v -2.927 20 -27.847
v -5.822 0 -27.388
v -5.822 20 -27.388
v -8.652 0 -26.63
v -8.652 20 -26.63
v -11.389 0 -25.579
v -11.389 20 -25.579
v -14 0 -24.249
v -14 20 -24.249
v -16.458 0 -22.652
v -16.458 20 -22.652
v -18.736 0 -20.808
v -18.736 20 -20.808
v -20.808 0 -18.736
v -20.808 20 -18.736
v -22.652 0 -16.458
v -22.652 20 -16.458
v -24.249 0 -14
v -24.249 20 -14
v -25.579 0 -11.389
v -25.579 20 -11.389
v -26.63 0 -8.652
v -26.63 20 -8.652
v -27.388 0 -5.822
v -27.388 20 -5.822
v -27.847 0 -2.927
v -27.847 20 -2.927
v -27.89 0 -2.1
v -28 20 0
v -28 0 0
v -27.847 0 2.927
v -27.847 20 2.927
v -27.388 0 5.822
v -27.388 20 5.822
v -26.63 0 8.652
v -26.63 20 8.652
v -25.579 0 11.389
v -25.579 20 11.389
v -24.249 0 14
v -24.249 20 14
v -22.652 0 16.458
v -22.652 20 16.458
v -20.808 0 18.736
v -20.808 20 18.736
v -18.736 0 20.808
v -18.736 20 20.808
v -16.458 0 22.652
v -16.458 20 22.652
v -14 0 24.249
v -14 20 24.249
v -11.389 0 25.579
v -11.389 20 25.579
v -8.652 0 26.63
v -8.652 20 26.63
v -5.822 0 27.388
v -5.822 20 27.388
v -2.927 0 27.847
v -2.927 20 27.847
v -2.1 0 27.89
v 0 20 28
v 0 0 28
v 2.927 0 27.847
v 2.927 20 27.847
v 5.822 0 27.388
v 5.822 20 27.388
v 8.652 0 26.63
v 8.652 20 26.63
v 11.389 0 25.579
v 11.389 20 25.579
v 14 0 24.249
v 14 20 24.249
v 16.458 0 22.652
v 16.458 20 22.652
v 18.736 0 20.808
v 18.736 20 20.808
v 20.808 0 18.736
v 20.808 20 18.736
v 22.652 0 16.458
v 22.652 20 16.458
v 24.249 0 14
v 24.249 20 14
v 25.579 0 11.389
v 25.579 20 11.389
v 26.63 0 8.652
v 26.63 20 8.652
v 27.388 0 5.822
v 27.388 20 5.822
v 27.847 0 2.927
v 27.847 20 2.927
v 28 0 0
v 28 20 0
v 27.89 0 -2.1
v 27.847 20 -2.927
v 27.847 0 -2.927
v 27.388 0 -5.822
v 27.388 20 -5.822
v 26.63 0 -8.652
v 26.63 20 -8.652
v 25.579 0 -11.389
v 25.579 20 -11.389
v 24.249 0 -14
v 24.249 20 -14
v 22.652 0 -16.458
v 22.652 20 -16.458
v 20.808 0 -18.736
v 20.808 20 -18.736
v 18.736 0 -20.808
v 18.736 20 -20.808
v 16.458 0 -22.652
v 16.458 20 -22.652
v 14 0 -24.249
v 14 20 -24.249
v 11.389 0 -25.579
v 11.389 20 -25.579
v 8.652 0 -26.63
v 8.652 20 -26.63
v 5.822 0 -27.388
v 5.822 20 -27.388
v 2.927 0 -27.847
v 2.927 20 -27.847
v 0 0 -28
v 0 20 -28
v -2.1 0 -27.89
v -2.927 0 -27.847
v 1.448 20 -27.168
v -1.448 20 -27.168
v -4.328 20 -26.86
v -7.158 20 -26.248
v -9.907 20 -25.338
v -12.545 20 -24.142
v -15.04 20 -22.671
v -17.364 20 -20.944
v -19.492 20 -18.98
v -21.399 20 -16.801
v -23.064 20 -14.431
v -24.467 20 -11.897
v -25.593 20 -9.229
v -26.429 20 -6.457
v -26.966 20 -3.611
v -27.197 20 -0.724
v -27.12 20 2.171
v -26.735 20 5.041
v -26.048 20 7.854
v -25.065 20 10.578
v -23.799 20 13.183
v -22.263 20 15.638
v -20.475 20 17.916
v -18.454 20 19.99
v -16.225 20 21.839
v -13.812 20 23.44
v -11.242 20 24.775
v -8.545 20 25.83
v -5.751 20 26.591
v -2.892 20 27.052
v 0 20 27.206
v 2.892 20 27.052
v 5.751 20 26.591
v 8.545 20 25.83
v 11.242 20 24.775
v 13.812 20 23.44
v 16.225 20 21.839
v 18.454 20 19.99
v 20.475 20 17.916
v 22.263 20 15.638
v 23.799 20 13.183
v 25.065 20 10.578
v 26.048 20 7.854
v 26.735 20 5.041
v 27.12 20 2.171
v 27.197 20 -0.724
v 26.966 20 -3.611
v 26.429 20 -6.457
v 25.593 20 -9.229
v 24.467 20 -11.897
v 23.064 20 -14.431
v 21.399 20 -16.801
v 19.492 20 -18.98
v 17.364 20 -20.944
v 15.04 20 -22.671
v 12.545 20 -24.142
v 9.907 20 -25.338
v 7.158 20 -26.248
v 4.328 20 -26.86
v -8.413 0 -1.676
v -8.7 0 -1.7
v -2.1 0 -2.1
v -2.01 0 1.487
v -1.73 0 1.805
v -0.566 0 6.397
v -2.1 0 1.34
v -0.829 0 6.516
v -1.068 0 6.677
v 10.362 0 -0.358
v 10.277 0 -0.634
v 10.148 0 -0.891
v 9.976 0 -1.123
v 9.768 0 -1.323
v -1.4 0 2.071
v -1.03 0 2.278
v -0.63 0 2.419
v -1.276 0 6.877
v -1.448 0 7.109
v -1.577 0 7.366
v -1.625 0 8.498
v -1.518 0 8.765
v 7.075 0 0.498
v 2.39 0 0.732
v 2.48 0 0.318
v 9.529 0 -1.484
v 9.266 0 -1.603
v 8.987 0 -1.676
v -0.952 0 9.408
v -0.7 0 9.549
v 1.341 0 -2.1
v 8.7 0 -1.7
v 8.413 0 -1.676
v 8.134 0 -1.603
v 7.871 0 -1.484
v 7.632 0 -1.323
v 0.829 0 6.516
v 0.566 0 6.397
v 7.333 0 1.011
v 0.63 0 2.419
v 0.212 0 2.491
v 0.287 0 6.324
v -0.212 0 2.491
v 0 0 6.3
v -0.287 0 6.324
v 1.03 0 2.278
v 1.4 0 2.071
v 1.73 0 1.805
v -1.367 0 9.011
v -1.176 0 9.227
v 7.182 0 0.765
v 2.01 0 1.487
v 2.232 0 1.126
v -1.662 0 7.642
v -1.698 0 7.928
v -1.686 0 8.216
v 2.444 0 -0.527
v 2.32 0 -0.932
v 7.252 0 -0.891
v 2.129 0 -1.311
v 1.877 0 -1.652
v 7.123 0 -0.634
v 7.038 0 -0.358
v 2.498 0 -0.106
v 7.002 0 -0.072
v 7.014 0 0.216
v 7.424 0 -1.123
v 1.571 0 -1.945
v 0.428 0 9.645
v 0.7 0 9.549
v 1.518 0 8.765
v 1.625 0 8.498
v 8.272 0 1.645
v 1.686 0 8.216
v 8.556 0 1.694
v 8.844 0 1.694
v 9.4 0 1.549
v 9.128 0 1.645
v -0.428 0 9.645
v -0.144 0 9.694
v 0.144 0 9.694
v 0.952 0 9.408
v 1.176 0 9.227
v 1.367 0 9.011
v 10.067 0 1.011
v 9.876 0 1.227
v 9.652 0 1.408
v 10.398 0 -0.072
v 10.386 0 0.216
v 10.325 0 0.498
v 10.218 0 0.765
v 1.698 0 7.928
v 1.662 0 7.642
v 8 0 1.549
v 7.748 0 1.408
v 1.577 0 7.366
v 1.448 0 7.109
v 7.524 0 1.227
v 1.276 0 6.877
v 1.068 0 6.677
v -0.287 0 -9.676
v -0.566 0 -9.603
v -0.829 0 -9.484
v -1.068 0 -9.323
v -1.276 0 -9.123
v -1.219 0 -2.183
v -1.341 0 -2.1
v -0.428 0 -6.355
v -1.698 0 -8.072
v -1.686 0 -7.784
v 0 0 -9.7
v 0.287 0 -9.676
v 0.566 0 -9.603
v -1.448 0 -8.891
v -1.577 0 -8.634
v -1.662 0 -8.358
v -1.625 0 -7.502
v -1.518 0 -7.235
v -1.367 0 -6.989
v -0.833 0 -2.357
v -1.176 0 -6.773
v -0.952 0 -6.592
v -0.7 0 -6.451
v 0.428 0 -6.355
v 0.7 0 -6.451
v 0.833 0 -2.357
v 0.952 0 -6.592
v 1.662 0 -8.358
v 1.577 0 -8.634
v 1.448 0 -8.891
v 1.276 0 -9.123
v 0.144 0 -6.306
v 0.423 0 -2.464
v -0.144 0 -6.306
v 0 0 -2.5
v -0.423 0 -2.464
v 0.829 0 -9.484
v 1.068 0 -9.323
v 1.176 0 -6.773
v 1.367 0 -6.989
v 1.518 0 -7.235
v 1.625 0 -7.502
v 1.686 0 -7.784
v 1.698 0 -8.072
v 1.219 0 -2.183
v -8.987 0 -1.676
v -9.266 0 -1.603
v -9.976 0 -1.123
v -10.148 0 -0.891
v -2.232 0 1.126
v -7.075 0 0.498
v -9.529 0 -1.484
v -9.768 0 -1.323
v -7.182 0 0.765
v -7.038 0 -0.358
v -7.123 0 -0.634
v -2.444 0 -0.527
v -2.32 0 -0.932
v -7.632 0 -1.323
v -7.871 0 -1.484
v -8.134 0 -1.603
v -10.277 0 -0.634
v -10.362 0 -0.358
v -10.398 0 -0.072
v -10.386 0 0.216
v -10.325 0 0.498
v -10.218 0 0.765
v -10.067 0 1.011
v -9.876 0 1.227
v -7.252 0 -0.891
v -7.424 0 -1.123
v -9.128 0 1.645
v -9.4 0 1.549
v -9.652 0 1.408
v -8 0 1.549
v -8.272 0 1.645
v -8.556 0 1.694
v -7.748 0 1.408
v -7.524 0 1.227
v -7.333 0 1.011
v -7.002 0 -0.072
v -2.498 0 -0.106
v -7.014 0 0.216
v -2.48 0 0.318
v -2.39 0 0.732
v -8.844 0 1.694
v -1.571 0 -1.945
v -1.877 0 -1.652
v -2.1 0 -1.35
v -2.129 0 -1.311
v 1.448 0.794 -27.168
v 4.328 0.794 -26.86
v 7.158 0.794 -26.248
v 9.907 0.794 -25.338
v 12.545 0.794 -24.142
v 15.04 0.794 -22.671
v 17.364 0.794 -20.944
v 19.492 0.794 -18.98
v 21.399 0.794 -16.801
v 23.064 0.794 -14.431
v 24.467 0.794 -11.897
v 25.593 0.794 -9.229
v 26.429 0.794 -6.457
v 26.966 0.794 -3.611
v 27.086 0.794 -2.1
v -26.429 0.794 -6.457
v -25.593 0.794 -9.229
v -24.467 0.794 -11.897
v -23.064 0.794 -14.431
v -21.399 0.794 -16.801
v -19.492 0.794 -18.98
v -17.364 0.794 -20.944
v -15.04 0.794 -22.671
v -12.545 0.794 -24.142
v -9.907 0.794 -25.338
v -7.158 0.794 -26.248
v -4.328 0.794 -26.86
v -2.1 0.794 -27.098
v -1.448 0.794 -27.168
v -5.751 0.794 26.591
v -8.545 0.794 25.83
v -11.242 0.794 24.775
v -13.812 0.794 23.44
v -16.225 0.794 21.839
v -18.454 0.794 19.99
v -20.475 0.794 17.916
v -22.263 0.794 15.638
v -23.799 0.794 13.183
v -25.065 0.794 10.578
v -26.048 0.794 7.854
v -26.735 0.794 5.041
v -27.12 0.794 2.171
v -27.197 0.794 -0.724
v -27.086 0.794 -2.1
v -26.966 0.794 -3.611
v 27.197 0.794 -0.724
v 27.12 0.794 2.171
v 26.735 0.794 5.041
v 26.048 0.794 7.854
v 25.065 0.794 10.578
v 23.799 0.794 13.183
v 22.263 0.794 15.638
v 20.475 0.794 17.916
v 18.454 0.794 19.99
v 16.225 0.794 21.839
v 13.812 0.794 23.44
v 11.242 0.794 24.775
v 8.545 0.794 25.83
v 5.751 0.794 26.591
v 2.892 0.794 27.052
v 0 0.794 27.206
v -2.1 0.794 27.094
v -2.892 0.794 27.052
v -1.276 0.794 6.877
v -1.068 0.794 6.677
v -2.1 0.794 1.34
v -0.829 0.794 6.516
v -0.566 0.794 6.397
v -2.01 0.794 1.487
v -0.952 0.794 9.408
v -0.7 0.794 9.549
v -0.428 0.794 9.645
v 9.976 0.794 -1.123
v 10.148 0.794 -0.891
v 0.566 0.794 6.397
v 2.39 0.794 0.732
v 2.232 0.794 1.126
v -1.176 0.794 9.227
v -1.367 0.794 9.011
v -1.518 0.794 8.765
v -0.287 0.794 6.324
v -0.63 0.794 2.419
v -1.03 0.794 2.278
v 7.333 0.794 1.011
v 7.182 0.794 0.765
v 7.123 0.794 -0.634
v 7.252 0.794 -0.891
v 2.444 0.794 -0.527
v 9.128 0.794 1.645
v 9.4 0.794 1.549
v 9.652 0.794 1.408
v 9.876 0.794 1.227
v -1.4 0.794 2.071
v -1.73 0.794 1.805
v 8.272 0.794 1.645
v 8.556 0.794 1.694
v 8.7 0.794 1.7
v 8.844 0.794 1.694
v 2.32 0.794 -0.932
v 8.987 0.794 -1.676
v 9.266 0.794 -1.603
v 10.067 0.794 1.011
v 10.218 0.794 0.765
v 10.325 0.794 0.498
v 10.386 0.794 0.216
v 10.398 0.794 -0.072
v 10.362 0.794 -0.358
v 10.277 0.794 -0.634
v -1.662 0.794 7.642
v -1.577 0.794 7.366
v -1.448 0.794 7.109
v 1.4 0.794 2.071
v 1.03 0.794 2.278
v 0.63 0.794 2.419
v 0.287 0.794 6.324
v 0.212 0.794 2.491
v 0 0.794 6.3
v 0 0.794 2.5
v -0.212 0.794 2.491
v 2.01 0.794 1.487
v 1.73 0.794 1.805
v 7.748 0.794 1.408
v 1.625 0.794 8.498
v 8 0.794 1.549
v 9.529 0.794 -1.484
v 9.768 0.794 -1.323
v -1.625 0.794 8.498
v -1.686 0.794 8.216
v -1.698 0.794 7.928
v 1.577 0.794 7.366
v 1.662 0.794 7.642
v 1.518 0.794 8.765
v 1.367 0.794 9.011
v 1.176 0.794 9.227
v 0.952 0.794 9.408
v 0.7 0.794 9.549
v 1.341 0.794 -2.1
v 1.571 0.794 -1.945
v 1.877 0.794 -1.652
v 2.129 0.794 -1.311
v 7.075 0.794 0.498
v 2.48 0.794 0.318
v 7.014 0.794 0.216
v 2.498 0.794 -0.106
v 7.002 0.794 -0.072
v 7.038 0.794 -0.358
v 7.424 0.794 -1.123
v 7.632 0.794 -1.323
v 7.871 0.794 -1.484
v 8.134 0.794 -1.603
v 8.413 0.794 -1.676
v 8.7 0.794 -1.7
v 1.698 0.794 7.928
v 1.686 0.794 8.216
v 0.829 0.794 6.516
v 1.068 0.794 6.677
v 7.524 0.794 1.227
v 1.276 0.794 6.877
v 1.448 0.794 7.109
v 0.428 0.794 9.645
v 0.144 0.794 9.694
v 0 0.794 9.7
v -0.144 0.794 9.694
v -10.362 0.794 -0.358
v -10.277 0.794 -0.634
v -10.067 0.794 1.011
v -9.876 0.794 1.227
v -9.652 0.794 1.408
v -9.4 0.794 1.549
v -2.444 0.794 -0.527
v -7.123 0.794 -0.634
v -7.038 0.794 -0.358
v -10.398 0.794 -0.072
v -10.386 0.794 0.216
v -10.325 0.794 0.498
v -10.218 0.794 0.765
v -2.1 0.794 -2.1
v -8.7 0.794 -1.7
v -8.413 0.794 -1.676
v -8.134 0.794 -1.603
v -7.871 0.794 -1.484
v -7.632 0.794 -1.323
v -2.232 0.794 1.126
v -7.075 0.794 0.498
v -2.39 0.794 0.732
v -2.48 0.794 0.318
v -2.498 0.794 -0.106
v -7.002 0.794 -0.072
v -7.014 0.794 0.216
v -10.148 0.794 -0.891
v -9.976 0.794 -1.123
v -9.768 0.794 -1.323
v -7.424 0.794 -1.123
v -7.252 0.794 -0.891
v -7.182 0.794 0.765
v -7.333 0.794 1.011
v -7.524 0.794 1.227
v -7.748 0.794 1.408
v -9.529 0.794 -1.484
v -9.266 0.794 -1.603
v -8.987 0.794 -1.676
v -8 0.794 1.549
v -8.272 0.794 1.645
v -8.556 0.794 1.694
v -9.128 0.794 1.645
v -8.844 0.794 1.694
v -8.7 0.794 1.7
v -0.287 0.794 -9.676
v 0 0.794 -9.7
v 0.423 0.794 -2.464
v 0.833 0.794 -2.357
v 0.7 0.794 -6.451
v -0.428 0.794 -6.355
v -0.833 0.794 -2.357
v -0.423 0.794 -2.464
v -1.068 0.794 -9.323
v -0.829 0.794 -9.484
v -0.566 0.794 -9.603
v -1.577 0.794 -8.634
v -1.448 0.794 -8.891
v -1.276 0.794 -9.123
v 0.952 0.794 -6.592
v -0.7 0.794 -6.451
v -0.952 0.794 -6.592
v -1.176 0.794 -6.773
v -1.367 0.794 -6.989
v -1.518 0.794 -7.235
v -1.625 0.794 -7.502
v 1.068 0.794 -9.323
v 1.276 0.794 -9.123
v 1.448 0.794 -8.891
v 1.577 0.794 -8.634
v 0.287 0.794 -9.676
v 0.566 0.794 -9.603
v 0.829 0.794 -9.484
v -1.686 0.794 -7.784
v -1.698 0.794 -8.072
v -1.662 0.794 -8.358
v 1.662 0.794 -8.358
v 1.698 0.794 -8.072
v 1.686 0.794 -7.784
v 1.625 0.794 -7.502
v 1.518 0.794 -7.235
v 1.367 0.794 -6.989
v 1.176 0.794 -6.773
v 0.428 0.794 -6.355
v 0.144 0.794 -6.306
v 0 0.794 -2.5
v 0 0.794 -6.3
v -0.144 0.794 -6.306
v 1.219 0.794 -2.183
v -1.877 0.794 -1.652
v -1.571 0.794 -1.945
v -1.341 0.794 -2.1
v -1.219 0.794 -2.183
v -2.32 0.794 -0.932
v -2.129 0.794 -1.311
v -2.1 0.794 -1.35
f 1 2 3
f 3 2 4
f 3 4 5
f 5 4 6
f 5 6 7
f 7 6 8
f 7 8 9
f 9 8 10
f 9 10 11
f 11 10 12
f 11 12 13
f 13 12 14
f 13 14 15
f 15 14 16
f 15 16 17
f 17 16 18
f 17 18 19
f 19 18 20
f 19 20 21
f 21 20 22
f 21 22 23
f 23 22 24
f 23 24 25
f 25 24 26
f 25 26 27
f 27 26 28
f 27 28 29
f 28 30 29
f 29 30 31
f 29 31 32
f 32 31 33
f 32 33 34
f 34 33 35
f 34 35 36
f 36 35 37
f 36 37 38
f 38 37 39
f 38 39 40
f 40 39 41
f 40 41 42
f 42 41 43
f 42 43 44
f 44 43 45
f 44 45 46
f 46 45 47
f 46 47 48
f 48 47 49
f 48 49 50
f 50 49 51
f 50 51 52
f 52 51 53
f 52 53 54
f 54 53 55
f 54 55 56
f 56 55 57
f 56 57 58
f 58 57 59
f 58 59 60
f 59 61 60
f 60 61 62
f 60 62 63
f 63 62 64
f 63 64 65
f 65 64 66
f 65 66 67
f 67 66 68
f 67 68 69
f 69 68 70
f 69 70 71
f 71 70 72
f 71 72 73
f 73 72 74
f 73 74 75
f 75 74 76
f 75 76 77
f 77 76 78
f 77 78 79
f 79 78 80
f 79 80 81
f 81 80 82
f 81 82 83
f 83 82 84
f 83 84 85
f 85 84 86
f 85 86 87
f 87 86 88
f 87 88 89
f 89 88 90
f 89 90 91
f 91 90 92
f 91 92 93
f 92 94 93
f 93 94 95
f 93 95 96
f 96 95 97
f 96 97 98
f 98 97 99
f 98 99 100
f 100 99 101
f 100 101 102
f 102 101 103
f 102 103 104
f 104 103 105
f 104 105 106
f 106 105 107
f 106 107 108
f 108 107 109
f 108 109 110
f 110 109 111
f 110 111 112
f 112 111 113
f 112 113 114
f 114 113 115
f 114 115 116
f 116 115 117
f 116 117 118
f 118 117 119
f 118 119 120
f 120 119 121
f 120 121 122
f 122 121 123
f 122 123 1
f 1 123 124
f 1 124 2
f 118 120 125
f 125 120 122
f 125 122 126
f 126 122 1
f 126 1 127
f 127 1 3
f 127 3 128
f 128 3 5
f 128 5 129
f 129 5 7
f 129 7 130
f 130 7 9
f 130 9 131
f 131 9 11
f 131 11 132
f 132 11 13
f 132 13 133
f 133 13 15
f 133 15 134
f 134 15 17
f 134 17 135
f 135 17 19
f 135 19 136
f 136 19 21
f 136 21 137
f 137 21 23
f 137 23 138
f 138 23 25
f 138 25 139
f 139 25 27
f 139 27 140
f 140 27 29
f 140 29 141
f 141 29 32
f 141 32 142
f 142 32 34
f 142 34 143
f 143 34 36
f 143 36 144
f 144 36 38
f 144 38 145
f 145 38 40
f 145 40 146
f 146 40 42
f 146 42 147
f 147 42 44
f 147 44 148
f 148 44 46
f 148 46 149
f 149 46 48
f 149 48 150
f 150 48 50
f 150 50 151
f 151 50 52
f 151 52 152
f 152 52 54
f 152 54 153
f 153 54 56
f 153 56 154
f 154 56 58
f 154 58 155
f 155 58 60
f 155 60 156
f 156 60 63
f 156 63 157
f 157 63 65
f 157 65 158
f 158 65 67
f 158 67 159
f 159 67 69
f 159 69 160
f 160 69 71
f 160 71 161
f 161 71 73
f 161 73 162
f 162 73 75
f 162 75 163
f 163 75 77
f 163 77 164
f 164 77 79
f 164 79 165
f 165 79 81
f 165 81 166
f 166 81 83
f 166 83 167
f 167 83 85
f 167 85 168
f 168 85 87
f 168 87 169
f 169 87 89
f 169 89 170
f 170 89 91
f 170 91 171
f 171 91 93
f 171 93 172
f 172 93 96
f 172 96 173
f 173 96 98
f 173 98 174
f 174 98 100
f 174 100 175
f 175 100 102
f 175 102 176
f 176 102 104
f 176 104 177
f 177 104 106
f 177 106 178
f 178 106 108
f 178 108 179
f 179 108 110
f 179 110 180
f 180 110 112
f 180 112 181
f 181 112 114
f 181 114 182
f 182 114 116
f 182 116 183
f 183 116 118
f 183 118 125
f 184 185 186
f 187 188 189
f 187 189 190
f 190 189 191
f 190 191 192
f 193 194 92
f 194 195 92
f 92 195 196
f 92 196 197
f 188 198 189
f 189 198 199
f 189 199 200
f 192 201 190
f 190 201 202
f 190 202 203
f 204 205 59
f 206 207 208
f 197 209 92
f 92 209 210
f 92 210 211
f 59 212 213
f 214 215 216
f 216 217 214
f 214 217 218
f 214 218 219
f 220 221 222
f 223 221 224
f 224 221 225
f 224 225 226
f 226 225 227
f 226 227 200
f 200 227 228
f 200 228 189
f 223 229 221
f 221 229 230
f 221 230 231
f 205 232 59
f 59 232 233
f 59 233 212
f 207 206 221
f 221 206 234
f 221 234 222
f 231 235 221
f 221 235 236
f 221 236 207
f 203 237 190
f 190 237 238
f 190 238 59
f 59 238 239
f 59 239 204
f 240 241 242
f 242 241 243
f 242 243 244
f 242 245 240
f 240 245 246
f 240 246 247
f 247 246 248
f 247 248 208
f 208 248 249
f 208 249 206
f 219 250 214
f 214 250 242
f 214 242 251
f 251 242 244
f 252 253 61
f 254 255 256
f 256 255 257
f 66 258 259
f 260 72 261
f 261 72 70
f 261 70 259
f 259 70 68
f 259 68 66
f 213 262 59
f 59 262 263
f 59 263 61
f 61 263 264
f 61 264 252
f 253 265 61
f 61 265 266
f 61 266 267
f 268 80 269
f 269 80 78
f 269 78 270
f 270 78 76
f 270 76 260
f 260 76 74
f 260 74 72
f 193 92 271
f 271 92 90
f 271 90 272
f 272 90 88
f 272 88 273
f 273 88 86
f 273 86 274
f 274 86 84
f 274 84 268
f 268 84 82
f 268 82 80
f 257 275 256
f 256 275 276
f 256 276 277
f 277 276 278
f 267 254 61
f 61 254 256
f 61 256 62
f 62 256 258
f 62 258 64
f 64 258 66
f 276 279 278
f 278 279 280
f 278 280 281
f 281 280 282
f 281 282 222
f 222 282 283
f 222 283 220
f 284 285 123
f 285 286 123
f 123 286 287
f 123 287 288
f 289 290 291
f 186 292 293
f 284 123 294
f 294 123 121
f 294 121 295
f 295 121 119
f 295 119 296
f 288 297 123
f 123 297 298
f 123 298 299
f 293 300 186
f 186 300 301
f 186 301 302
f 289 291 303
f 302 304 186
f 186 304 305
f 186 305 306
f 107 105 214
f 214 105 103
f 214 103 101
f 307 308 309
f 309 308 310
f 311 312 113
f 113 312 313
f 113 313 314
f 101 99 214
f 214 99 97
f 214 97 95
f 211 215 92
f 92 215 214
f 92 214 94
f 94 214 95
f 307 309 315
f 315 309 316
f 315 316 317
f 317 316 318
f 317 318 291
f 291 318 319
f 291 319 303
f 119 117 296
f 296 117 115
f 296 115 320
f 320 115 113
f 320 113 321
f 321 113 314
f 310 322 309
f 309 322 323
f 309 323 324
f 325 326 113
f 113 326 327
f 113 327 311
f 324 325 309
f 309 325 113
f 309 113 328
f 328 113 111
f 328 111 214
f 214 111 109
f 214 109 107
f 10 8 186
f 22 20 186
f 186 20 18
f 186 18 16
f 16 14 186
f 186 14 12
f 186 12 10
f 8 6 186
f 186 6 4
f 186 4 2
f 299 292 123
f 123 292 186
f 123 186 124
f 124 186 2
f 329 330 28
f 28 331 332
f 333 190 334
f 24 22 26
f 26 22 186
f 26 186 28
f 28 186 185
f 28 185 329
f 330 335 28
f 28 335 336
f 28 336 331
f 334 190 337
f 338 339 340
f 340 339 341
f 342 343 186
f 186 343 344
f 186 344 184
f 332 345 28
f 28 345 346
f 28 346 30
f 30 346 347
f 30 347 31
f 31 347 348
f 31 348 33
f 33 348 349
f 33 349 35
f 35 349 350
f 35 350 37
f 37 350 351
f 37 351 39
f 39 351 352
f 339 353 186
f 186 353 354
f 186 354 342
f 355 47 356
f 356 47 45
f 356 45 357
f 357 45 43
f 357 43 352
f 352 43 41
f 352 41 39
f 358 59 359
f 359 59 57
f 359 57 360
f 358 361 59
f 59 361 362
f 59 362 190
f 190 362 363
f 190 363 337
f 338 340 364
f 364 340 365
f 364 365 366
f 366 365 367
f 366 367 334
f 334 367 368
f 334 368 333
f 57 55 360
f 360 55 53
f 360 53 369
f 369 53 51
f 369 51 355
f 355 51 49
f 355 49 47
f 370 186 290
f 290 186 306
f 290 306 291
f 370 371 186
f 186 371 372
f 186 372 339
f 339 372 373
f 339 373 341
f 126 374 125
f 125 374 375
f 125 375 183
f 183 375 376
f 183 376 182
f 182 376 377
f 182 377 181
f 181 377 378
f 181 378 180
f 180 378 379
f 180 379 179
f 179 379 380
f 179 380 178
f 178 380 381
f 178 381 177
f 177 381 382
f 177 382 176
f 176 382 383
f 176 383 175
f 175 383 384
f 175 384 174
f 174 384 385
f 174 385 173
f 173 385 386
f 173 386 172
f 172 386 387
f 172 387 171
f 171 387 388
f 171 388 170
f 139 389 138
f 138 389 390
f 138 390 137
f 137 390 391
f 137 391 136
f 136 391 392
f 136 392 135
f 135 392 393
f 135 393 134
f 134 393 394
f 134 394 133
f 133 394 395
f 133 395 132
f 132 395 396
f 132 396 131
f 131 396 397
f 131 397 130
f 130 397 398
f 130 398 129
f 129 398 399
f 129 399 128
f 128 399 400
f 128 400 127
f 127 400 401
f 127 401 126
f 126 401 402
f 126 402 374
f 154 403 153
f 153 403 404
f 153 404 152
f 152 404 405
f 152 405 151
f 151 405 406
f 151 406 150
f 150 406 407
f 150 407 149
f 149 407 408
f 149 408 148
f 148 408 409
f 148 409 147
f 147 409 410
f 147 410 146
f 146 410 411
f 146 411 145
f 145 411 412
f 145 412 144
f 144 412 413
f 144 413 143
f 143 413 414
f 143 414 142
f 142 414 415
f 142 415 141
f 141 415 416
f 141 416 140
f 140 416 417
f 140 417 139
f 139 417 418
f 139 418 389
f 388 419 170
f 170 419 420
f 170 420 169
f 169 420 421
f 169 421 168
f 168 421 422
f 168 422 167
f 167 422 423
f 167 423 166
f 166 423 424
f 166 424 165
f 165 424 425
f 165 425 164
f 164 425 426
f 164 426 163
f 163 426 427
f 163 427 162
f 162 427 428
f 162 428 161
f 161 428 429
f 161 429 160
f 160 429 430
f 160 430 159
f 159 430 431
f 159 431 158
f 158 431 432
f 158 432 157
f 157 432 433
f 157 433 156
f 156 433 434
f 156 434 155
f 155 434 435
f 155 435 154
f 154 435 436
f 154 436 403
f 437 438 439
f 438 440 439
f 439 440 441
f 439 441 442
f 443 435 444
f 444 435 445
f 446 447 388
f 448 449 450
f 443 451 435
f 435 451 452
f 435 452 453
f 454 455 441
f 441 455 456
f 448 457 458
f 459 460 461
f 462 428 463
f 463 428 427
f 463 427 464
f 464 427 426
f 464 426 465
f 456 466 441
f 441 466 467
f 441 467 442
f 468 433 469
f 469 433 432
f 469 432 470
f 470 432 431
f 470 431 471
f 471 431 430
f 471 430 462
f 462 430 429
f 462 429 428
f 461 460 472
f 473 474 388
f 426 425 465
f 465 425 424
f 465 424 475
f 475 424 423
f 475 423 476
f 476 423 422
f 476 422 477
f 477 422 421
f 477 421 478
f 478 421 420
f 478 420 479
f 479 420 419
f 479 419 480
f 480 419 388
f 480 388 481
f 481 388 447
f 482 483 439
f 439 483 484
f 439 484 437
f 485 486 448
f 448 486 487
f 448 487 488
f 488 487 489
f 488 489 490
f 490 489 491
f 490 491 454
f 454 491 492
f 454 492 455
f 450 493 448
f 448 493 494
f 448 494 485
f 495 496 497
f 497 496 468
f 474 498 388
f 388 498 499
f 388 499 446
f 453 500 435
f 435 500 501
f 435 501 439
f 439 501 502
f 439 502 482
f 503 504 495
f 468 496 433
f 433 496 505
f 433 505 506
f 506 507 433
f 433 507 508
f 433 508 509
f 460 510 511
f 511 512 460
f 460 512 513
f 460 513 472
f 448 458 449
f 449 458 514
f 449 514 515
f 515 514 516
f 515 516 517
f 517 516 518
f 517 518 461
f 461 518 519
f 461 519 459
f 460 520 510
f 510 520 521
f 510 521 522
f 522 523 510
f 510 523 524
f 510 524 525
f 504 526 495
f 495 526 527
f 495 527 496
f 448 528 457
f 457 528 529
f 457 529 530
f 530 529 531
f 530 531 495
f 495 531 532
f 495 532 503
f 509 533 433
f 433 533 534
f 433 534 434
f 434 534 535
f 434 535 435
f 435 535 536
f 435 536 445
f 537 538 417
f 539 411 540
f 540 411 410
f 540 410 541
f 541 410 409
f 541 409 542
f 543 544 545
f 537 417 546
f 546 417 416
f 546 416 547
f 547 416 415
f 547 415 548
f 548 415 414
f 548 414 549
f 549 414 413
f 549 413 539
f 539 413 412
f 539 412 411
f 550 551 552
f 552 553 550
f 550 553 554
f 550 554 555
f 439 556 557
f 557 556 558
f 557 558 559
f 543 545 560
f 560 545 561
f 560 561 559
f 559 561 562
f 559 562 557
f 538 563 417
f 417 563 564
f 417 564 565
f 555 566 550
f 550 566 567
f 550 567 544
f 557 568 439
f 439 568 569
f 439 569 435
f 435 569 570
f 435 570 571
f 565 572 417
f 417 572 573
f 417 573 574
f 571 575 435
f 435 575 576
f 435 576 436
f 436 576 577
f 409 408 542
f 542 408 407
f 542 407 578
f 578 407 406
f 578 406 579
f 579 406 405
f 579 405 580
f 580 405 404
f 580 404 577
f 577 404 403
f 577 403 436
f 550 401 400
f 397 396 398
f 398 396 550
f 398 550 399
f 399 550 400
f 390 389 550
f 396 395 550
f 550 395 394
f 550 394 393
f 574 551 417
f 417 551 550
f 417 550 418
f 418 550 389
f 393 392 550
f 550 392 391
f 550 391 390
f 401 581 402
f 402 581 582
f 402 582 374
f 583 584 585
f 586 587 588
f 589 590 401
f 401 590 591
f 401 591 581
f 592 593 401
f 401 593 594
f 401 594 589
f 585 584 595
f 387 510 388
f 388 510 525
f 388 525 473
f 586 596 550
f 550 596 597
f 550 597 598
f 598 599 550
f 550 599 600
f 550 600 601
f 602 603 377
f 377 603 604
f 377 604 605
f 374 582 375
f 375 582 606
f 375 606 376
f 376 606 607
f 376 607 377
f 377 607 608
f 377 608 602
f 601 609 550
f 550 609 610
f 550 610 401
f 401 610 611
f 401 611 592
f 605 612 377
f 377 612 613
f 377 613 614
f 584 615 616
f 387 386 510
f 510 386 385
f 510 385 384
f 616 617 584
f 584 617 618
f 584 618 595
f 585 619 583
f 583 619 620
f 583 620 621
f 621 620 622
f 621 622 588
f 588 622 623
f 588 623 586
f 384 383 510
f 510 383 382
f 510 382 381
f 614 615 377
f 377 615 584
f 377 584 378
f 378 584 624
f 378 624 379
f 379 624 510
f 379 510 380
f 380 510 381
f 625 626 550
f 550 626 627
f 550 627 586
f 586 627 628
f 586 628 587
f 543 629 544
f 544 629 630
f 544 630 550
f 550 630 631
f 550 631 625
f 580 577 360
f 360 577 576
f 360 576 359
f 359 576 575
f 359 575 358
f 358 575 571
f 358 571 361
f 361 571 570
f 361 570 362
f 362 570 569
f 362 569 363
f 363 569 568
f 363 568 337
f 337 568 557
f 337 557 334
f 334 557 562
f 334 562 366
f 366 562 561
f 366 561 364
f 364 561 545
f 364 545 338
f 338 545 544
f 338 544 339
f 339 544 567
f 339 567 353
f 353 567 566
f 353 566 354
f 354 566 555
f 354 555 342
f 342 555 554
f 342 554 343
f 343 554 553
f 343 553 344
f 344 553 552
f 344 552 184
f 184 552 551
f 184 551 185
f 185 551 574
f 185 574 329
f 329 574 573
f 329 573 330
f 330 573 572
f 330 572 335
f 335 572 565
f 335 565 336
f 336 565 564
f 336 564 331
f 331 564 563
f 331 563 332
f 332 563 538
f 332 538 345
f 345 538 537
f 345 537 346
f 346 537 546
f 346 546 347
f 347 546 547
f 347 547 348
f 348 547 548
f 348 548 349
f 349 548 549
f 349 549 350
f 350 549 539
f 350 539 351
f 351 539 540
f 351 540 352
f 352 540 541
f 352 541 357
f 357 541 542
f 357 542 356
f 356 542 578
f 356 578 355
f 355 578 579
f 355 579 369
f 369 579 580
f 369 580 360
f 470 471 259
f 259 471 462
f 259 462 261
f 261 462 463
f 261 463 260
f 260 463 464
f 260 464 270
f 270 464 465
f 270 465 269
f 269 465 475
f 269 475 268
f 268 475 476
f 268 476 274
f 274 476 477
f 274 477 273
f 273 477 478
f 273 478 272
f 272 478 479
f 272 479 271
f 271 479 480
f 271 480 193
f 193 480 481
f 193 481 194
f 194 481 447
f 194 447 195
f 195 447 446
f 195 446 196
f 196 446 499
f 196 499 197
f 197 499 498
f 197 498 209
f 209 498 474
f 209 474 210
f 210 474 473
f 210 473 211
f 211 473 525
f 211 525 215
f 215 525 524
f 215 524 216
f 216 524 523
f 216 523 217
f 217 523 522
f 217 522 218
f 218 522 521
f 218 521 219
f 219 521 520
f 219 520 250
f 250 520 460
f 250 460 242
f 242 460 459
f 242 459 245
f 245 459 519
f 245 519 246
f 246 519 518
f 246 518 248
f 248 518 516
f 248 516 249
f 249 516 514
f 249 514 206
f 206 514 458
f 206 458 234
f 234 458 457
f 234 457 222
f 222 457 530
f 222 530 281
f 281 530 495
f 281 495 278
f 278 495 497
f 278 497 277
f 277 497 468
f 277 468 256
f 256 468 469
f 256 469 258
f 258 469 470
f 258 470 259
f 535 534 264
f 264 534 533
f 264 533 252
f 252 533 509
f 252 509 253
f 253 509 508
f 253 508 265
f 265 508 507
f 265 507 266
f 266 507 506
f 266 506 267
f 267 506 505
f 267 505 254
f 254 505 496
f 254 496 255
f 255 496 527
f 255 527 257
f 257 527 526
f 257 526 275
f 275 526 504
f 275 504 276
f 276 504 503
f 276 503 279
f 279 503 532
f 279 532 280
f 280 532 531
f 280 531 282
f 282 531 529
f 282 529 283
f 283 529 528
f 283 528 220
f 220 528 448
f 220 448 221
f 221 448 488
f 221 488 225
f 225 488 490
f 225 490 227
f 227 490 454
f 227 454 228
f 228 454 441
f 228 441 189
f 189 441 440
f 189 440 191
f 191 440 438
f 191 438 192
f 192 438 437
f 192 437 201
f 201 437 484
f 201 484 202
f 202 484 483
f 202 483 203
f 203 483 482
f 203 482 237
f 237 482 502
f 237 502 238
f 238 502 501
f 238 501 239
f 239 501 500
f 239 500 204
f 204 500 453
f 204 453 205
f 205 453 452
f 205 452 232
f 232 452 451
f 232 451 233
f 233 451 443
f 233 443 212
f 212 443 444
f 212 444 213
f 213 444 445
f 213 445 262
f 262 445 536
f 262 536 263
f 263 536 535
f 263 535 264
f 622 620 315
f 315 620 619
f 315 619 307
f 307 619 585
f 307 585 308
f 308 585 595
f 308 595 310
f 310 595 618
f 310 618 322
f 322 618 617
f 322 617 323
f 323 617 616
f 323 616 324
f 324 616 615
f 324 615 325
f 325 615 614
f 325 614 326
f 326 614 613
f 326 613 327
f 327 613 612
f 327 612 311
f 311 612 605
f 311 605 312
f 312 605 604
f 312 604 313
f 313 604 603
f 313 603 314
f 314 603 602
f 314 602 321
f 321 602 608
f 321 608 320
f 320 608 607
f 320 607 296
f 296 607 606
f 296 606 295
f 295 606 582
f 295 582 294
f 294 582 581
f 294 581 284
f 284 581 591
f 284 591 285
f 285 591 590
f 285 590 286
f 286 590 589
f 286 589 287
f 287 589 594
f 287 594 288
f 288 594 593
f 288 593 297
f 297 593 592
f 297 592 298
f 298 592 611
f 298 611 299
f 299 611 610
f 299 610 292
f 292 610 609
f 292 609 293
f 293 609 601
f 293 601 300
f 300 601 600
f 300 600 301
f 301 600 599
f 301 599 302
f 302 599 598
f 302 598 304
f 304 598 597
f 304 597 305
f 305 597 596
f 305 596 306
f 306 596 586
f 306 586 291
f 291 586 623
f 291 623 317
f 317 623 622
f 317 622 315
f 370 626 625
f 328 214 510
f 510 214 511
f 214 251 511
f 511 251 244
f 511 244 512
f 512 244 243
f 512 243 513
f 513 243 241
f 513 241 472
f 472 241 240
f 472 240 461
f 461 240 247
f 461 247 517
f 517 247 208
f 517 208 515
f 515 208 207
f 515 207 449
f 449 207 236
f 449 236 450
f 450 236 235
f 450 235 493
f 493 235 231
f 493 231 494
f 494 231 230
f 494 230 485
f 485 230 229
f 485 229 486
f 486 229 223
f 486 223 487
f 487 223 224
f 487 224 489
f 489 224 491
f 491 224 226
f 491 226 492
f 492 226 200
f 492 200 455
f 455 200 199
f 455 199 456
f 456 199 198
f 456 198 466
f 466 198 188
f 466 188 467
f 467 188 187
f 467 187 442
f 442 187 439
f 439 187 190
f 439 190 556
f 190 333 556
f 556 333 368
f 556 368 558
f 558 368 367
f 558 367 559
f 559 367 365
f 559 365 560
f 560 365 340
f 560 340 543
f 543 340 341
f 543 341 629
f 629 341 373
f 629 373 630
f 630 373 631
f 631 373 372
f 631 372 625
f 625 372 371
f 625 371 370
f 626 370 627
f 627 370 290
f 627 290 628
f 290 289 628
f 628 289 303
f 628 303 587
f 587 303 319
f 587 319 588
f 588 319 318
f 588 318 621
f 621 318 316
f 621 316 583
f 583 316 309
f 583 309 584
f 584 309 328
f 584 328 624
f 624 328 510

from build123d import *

# Parameters (mm, degrees)
SKETCH1_R            = 28
BOSS_EXTRUDE1_DEPTH  = 20
SKETCH2_R            = 27.20625
CUT_EXTRUDE1_DEPTH   = 19.20625
M3_CLEARANCE_HOLE1_D = 3.4
SKETCH5_R            = 2.5
CUT_EXTRUDE2_DEPTH   = 45.362146026


with BuildPart() as part:
    # Sketch1 → Boss-Extrude1 (new body)
    with BuildSketch(Plane(origin=(0, 0, 0), x_dir=(1, 0, 0), z_dir=(0, 1, 0))):
        with Locations(Location((0, 0, 0), (0, 0, 270))):
            Circle(SKETCH1_R)
    extrude(amount=BOSS_EXTRUDE1_DEPTH)

    # Sketch2 → Cut-Extrude1 (cut)
    with BuildSketch(Plane(origin=(0, 20, 0), x_dir=(1, 0, 0), z_dir=(0, 1, 0))):
        with Locations(Location((0, 0, 0), (0, 0, 270))):
            Circle(SKETCH2_R)
    extrude(amount=-CUT_EXTRUDE1_DEPTH, mode=Mode.SUBTRACT)

    # M3 Clearance Hole1 (through all)
    with Locations(Plane(origin=(0, 0, 0), x_dir=(-1, 0, 0), z_dir=(0, -1, 0))):
        with Locations((0, 8), (0, -8), (-8.700000126, 0), (8.700000126, 0)):
            Hole(M3_CLEARANCE_HOLE1_D / 2)

    # Sketch5 → Cut-Extrude2 (cut, through all)
    with BuildSketch(Plane.XZ):
        with Locations(Location((0, 0, 0), (0, 0, 270))):
            Circle(SKETCH5_R)
    extrude(amount=-CUT_EXTRUDE2_DEPTH, mode=Mode.SUBTRACT)


solid = part.part
